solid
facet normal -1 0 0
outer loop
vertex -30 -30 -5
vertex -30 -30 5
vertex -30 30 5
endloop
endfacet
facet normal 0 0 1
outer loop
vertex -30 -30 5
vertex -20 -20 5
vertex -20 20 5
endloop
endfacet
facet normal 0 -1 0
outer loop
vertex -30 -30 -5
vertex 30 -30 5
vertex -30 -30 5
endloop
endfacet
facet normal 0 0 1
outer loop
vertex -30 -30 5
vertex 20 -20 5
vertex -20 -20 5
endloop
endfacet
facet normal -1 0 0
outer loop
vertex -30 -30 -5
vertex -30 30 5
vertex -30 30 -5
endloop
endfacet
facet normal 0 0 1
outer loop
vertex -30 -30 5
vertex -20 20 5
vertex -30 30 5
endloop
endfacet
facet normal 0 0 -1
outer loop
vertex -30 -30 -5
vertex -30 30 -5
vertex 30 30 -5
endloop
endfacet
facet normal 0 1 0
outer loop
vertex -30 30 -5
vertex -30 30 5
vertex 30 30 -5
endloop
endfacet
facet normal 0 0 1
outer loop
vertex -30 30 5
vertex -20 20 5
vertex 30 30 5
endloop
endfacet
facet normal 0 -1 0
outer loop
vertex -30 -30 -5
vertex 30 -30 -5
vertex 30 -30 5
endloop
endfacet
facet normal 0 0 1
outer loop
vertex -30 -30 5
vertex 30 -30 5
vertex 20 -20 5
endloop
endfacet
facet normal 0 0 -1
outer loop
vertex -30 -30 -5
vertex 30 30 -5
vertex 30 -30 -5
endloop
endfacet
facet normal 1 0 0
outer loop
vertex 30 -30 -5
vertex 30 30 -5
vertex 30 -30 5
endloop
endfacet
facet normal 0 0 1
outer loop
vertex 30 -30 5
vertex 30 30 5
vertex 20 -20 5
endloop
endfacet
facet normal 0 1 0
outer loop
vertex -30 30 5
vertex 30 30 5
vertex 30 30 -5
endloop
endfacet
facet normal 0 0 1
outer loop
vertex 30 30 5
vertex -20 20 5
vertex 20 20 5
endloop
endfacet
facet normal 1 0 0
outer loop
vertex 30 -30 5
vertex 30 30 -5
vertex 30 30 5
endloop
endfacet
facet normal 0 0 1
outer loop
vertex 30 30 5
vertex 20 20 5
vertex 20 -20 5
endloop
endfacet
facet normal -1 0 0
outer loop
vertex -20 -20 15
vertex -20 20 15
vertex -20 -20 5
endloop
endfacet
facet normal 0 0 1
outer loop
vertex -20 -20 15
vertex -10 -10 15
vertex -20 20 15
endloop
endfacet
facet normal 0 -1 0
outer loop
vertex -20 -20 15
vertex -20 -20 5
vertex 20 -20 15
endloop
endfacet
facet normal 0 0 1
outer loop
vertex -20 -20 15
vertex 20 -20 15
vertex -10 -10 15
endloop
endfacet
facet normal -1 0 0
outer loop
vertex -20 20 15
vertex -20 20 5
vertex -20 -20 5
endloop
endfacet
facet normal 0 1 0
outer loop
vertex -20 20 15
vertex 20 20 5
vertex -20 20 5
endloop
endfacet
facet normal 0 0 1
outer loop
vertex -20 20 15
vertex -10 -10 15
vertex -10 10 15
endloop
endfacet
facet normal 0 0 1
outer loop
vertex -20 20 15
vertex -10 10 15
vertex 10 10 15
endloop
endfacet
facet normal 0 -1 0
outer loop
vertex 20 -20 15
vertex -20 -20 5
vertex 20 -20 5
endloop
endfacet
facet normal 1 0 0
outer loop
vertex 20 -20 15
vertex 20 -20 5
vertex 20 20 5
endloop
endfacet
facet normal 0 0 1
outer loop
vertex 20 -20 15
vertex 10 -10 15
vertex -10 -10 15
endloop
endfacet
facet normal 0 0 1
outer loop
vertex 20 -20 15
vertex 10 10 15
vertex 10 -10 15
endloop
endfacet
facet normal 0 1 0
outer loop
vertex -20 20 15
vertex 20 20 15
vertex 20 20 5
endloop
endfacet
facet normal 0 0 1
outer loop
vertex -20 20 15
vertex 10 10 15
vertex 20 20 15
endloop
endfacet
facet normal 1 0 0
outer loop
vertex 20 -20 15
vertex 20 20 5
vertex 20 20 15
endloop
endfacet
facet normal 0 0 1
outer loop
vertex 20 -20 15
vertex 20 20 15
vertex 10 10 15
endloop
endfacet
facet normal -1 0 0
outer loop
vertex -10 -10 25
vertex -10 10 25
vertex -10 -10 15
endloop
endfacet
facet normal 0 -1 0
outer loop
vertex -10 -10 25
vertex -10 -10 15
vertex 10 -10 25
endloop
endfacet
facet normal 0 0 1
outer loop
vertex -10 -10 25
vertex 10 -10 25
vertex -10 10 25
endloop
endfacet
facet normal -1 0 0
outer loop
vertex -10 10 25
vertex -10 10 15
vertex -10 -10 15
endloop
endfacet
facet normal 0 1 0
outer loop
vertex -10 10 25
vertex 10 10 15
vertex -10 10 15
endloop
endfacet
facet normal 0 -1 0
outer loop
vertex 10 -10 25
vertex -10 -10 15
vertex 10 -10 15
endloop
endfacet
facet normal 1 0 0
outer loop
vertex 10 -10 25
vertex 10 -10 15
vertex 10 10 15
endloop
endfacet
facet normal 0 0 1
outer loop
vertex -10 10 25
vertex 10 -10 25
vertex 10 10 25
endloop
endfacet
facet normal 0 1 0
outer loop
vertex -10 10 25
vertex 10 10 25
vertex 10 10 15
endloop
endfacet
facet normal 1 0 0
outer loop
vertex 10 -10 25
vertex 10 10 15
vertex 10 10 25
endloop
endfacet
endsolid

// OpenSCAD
// 1段目（底辺）
translate([0, 0, 0])
    cube([60, 60, 10], center=true);

// 2段目（中段）
translate([0, 0, 10])
    cube([40, 40, 10], center=true);

// 3段目（頂上）
translate([0, 0, 20])
    cube([20, 20, 10], center=true);
